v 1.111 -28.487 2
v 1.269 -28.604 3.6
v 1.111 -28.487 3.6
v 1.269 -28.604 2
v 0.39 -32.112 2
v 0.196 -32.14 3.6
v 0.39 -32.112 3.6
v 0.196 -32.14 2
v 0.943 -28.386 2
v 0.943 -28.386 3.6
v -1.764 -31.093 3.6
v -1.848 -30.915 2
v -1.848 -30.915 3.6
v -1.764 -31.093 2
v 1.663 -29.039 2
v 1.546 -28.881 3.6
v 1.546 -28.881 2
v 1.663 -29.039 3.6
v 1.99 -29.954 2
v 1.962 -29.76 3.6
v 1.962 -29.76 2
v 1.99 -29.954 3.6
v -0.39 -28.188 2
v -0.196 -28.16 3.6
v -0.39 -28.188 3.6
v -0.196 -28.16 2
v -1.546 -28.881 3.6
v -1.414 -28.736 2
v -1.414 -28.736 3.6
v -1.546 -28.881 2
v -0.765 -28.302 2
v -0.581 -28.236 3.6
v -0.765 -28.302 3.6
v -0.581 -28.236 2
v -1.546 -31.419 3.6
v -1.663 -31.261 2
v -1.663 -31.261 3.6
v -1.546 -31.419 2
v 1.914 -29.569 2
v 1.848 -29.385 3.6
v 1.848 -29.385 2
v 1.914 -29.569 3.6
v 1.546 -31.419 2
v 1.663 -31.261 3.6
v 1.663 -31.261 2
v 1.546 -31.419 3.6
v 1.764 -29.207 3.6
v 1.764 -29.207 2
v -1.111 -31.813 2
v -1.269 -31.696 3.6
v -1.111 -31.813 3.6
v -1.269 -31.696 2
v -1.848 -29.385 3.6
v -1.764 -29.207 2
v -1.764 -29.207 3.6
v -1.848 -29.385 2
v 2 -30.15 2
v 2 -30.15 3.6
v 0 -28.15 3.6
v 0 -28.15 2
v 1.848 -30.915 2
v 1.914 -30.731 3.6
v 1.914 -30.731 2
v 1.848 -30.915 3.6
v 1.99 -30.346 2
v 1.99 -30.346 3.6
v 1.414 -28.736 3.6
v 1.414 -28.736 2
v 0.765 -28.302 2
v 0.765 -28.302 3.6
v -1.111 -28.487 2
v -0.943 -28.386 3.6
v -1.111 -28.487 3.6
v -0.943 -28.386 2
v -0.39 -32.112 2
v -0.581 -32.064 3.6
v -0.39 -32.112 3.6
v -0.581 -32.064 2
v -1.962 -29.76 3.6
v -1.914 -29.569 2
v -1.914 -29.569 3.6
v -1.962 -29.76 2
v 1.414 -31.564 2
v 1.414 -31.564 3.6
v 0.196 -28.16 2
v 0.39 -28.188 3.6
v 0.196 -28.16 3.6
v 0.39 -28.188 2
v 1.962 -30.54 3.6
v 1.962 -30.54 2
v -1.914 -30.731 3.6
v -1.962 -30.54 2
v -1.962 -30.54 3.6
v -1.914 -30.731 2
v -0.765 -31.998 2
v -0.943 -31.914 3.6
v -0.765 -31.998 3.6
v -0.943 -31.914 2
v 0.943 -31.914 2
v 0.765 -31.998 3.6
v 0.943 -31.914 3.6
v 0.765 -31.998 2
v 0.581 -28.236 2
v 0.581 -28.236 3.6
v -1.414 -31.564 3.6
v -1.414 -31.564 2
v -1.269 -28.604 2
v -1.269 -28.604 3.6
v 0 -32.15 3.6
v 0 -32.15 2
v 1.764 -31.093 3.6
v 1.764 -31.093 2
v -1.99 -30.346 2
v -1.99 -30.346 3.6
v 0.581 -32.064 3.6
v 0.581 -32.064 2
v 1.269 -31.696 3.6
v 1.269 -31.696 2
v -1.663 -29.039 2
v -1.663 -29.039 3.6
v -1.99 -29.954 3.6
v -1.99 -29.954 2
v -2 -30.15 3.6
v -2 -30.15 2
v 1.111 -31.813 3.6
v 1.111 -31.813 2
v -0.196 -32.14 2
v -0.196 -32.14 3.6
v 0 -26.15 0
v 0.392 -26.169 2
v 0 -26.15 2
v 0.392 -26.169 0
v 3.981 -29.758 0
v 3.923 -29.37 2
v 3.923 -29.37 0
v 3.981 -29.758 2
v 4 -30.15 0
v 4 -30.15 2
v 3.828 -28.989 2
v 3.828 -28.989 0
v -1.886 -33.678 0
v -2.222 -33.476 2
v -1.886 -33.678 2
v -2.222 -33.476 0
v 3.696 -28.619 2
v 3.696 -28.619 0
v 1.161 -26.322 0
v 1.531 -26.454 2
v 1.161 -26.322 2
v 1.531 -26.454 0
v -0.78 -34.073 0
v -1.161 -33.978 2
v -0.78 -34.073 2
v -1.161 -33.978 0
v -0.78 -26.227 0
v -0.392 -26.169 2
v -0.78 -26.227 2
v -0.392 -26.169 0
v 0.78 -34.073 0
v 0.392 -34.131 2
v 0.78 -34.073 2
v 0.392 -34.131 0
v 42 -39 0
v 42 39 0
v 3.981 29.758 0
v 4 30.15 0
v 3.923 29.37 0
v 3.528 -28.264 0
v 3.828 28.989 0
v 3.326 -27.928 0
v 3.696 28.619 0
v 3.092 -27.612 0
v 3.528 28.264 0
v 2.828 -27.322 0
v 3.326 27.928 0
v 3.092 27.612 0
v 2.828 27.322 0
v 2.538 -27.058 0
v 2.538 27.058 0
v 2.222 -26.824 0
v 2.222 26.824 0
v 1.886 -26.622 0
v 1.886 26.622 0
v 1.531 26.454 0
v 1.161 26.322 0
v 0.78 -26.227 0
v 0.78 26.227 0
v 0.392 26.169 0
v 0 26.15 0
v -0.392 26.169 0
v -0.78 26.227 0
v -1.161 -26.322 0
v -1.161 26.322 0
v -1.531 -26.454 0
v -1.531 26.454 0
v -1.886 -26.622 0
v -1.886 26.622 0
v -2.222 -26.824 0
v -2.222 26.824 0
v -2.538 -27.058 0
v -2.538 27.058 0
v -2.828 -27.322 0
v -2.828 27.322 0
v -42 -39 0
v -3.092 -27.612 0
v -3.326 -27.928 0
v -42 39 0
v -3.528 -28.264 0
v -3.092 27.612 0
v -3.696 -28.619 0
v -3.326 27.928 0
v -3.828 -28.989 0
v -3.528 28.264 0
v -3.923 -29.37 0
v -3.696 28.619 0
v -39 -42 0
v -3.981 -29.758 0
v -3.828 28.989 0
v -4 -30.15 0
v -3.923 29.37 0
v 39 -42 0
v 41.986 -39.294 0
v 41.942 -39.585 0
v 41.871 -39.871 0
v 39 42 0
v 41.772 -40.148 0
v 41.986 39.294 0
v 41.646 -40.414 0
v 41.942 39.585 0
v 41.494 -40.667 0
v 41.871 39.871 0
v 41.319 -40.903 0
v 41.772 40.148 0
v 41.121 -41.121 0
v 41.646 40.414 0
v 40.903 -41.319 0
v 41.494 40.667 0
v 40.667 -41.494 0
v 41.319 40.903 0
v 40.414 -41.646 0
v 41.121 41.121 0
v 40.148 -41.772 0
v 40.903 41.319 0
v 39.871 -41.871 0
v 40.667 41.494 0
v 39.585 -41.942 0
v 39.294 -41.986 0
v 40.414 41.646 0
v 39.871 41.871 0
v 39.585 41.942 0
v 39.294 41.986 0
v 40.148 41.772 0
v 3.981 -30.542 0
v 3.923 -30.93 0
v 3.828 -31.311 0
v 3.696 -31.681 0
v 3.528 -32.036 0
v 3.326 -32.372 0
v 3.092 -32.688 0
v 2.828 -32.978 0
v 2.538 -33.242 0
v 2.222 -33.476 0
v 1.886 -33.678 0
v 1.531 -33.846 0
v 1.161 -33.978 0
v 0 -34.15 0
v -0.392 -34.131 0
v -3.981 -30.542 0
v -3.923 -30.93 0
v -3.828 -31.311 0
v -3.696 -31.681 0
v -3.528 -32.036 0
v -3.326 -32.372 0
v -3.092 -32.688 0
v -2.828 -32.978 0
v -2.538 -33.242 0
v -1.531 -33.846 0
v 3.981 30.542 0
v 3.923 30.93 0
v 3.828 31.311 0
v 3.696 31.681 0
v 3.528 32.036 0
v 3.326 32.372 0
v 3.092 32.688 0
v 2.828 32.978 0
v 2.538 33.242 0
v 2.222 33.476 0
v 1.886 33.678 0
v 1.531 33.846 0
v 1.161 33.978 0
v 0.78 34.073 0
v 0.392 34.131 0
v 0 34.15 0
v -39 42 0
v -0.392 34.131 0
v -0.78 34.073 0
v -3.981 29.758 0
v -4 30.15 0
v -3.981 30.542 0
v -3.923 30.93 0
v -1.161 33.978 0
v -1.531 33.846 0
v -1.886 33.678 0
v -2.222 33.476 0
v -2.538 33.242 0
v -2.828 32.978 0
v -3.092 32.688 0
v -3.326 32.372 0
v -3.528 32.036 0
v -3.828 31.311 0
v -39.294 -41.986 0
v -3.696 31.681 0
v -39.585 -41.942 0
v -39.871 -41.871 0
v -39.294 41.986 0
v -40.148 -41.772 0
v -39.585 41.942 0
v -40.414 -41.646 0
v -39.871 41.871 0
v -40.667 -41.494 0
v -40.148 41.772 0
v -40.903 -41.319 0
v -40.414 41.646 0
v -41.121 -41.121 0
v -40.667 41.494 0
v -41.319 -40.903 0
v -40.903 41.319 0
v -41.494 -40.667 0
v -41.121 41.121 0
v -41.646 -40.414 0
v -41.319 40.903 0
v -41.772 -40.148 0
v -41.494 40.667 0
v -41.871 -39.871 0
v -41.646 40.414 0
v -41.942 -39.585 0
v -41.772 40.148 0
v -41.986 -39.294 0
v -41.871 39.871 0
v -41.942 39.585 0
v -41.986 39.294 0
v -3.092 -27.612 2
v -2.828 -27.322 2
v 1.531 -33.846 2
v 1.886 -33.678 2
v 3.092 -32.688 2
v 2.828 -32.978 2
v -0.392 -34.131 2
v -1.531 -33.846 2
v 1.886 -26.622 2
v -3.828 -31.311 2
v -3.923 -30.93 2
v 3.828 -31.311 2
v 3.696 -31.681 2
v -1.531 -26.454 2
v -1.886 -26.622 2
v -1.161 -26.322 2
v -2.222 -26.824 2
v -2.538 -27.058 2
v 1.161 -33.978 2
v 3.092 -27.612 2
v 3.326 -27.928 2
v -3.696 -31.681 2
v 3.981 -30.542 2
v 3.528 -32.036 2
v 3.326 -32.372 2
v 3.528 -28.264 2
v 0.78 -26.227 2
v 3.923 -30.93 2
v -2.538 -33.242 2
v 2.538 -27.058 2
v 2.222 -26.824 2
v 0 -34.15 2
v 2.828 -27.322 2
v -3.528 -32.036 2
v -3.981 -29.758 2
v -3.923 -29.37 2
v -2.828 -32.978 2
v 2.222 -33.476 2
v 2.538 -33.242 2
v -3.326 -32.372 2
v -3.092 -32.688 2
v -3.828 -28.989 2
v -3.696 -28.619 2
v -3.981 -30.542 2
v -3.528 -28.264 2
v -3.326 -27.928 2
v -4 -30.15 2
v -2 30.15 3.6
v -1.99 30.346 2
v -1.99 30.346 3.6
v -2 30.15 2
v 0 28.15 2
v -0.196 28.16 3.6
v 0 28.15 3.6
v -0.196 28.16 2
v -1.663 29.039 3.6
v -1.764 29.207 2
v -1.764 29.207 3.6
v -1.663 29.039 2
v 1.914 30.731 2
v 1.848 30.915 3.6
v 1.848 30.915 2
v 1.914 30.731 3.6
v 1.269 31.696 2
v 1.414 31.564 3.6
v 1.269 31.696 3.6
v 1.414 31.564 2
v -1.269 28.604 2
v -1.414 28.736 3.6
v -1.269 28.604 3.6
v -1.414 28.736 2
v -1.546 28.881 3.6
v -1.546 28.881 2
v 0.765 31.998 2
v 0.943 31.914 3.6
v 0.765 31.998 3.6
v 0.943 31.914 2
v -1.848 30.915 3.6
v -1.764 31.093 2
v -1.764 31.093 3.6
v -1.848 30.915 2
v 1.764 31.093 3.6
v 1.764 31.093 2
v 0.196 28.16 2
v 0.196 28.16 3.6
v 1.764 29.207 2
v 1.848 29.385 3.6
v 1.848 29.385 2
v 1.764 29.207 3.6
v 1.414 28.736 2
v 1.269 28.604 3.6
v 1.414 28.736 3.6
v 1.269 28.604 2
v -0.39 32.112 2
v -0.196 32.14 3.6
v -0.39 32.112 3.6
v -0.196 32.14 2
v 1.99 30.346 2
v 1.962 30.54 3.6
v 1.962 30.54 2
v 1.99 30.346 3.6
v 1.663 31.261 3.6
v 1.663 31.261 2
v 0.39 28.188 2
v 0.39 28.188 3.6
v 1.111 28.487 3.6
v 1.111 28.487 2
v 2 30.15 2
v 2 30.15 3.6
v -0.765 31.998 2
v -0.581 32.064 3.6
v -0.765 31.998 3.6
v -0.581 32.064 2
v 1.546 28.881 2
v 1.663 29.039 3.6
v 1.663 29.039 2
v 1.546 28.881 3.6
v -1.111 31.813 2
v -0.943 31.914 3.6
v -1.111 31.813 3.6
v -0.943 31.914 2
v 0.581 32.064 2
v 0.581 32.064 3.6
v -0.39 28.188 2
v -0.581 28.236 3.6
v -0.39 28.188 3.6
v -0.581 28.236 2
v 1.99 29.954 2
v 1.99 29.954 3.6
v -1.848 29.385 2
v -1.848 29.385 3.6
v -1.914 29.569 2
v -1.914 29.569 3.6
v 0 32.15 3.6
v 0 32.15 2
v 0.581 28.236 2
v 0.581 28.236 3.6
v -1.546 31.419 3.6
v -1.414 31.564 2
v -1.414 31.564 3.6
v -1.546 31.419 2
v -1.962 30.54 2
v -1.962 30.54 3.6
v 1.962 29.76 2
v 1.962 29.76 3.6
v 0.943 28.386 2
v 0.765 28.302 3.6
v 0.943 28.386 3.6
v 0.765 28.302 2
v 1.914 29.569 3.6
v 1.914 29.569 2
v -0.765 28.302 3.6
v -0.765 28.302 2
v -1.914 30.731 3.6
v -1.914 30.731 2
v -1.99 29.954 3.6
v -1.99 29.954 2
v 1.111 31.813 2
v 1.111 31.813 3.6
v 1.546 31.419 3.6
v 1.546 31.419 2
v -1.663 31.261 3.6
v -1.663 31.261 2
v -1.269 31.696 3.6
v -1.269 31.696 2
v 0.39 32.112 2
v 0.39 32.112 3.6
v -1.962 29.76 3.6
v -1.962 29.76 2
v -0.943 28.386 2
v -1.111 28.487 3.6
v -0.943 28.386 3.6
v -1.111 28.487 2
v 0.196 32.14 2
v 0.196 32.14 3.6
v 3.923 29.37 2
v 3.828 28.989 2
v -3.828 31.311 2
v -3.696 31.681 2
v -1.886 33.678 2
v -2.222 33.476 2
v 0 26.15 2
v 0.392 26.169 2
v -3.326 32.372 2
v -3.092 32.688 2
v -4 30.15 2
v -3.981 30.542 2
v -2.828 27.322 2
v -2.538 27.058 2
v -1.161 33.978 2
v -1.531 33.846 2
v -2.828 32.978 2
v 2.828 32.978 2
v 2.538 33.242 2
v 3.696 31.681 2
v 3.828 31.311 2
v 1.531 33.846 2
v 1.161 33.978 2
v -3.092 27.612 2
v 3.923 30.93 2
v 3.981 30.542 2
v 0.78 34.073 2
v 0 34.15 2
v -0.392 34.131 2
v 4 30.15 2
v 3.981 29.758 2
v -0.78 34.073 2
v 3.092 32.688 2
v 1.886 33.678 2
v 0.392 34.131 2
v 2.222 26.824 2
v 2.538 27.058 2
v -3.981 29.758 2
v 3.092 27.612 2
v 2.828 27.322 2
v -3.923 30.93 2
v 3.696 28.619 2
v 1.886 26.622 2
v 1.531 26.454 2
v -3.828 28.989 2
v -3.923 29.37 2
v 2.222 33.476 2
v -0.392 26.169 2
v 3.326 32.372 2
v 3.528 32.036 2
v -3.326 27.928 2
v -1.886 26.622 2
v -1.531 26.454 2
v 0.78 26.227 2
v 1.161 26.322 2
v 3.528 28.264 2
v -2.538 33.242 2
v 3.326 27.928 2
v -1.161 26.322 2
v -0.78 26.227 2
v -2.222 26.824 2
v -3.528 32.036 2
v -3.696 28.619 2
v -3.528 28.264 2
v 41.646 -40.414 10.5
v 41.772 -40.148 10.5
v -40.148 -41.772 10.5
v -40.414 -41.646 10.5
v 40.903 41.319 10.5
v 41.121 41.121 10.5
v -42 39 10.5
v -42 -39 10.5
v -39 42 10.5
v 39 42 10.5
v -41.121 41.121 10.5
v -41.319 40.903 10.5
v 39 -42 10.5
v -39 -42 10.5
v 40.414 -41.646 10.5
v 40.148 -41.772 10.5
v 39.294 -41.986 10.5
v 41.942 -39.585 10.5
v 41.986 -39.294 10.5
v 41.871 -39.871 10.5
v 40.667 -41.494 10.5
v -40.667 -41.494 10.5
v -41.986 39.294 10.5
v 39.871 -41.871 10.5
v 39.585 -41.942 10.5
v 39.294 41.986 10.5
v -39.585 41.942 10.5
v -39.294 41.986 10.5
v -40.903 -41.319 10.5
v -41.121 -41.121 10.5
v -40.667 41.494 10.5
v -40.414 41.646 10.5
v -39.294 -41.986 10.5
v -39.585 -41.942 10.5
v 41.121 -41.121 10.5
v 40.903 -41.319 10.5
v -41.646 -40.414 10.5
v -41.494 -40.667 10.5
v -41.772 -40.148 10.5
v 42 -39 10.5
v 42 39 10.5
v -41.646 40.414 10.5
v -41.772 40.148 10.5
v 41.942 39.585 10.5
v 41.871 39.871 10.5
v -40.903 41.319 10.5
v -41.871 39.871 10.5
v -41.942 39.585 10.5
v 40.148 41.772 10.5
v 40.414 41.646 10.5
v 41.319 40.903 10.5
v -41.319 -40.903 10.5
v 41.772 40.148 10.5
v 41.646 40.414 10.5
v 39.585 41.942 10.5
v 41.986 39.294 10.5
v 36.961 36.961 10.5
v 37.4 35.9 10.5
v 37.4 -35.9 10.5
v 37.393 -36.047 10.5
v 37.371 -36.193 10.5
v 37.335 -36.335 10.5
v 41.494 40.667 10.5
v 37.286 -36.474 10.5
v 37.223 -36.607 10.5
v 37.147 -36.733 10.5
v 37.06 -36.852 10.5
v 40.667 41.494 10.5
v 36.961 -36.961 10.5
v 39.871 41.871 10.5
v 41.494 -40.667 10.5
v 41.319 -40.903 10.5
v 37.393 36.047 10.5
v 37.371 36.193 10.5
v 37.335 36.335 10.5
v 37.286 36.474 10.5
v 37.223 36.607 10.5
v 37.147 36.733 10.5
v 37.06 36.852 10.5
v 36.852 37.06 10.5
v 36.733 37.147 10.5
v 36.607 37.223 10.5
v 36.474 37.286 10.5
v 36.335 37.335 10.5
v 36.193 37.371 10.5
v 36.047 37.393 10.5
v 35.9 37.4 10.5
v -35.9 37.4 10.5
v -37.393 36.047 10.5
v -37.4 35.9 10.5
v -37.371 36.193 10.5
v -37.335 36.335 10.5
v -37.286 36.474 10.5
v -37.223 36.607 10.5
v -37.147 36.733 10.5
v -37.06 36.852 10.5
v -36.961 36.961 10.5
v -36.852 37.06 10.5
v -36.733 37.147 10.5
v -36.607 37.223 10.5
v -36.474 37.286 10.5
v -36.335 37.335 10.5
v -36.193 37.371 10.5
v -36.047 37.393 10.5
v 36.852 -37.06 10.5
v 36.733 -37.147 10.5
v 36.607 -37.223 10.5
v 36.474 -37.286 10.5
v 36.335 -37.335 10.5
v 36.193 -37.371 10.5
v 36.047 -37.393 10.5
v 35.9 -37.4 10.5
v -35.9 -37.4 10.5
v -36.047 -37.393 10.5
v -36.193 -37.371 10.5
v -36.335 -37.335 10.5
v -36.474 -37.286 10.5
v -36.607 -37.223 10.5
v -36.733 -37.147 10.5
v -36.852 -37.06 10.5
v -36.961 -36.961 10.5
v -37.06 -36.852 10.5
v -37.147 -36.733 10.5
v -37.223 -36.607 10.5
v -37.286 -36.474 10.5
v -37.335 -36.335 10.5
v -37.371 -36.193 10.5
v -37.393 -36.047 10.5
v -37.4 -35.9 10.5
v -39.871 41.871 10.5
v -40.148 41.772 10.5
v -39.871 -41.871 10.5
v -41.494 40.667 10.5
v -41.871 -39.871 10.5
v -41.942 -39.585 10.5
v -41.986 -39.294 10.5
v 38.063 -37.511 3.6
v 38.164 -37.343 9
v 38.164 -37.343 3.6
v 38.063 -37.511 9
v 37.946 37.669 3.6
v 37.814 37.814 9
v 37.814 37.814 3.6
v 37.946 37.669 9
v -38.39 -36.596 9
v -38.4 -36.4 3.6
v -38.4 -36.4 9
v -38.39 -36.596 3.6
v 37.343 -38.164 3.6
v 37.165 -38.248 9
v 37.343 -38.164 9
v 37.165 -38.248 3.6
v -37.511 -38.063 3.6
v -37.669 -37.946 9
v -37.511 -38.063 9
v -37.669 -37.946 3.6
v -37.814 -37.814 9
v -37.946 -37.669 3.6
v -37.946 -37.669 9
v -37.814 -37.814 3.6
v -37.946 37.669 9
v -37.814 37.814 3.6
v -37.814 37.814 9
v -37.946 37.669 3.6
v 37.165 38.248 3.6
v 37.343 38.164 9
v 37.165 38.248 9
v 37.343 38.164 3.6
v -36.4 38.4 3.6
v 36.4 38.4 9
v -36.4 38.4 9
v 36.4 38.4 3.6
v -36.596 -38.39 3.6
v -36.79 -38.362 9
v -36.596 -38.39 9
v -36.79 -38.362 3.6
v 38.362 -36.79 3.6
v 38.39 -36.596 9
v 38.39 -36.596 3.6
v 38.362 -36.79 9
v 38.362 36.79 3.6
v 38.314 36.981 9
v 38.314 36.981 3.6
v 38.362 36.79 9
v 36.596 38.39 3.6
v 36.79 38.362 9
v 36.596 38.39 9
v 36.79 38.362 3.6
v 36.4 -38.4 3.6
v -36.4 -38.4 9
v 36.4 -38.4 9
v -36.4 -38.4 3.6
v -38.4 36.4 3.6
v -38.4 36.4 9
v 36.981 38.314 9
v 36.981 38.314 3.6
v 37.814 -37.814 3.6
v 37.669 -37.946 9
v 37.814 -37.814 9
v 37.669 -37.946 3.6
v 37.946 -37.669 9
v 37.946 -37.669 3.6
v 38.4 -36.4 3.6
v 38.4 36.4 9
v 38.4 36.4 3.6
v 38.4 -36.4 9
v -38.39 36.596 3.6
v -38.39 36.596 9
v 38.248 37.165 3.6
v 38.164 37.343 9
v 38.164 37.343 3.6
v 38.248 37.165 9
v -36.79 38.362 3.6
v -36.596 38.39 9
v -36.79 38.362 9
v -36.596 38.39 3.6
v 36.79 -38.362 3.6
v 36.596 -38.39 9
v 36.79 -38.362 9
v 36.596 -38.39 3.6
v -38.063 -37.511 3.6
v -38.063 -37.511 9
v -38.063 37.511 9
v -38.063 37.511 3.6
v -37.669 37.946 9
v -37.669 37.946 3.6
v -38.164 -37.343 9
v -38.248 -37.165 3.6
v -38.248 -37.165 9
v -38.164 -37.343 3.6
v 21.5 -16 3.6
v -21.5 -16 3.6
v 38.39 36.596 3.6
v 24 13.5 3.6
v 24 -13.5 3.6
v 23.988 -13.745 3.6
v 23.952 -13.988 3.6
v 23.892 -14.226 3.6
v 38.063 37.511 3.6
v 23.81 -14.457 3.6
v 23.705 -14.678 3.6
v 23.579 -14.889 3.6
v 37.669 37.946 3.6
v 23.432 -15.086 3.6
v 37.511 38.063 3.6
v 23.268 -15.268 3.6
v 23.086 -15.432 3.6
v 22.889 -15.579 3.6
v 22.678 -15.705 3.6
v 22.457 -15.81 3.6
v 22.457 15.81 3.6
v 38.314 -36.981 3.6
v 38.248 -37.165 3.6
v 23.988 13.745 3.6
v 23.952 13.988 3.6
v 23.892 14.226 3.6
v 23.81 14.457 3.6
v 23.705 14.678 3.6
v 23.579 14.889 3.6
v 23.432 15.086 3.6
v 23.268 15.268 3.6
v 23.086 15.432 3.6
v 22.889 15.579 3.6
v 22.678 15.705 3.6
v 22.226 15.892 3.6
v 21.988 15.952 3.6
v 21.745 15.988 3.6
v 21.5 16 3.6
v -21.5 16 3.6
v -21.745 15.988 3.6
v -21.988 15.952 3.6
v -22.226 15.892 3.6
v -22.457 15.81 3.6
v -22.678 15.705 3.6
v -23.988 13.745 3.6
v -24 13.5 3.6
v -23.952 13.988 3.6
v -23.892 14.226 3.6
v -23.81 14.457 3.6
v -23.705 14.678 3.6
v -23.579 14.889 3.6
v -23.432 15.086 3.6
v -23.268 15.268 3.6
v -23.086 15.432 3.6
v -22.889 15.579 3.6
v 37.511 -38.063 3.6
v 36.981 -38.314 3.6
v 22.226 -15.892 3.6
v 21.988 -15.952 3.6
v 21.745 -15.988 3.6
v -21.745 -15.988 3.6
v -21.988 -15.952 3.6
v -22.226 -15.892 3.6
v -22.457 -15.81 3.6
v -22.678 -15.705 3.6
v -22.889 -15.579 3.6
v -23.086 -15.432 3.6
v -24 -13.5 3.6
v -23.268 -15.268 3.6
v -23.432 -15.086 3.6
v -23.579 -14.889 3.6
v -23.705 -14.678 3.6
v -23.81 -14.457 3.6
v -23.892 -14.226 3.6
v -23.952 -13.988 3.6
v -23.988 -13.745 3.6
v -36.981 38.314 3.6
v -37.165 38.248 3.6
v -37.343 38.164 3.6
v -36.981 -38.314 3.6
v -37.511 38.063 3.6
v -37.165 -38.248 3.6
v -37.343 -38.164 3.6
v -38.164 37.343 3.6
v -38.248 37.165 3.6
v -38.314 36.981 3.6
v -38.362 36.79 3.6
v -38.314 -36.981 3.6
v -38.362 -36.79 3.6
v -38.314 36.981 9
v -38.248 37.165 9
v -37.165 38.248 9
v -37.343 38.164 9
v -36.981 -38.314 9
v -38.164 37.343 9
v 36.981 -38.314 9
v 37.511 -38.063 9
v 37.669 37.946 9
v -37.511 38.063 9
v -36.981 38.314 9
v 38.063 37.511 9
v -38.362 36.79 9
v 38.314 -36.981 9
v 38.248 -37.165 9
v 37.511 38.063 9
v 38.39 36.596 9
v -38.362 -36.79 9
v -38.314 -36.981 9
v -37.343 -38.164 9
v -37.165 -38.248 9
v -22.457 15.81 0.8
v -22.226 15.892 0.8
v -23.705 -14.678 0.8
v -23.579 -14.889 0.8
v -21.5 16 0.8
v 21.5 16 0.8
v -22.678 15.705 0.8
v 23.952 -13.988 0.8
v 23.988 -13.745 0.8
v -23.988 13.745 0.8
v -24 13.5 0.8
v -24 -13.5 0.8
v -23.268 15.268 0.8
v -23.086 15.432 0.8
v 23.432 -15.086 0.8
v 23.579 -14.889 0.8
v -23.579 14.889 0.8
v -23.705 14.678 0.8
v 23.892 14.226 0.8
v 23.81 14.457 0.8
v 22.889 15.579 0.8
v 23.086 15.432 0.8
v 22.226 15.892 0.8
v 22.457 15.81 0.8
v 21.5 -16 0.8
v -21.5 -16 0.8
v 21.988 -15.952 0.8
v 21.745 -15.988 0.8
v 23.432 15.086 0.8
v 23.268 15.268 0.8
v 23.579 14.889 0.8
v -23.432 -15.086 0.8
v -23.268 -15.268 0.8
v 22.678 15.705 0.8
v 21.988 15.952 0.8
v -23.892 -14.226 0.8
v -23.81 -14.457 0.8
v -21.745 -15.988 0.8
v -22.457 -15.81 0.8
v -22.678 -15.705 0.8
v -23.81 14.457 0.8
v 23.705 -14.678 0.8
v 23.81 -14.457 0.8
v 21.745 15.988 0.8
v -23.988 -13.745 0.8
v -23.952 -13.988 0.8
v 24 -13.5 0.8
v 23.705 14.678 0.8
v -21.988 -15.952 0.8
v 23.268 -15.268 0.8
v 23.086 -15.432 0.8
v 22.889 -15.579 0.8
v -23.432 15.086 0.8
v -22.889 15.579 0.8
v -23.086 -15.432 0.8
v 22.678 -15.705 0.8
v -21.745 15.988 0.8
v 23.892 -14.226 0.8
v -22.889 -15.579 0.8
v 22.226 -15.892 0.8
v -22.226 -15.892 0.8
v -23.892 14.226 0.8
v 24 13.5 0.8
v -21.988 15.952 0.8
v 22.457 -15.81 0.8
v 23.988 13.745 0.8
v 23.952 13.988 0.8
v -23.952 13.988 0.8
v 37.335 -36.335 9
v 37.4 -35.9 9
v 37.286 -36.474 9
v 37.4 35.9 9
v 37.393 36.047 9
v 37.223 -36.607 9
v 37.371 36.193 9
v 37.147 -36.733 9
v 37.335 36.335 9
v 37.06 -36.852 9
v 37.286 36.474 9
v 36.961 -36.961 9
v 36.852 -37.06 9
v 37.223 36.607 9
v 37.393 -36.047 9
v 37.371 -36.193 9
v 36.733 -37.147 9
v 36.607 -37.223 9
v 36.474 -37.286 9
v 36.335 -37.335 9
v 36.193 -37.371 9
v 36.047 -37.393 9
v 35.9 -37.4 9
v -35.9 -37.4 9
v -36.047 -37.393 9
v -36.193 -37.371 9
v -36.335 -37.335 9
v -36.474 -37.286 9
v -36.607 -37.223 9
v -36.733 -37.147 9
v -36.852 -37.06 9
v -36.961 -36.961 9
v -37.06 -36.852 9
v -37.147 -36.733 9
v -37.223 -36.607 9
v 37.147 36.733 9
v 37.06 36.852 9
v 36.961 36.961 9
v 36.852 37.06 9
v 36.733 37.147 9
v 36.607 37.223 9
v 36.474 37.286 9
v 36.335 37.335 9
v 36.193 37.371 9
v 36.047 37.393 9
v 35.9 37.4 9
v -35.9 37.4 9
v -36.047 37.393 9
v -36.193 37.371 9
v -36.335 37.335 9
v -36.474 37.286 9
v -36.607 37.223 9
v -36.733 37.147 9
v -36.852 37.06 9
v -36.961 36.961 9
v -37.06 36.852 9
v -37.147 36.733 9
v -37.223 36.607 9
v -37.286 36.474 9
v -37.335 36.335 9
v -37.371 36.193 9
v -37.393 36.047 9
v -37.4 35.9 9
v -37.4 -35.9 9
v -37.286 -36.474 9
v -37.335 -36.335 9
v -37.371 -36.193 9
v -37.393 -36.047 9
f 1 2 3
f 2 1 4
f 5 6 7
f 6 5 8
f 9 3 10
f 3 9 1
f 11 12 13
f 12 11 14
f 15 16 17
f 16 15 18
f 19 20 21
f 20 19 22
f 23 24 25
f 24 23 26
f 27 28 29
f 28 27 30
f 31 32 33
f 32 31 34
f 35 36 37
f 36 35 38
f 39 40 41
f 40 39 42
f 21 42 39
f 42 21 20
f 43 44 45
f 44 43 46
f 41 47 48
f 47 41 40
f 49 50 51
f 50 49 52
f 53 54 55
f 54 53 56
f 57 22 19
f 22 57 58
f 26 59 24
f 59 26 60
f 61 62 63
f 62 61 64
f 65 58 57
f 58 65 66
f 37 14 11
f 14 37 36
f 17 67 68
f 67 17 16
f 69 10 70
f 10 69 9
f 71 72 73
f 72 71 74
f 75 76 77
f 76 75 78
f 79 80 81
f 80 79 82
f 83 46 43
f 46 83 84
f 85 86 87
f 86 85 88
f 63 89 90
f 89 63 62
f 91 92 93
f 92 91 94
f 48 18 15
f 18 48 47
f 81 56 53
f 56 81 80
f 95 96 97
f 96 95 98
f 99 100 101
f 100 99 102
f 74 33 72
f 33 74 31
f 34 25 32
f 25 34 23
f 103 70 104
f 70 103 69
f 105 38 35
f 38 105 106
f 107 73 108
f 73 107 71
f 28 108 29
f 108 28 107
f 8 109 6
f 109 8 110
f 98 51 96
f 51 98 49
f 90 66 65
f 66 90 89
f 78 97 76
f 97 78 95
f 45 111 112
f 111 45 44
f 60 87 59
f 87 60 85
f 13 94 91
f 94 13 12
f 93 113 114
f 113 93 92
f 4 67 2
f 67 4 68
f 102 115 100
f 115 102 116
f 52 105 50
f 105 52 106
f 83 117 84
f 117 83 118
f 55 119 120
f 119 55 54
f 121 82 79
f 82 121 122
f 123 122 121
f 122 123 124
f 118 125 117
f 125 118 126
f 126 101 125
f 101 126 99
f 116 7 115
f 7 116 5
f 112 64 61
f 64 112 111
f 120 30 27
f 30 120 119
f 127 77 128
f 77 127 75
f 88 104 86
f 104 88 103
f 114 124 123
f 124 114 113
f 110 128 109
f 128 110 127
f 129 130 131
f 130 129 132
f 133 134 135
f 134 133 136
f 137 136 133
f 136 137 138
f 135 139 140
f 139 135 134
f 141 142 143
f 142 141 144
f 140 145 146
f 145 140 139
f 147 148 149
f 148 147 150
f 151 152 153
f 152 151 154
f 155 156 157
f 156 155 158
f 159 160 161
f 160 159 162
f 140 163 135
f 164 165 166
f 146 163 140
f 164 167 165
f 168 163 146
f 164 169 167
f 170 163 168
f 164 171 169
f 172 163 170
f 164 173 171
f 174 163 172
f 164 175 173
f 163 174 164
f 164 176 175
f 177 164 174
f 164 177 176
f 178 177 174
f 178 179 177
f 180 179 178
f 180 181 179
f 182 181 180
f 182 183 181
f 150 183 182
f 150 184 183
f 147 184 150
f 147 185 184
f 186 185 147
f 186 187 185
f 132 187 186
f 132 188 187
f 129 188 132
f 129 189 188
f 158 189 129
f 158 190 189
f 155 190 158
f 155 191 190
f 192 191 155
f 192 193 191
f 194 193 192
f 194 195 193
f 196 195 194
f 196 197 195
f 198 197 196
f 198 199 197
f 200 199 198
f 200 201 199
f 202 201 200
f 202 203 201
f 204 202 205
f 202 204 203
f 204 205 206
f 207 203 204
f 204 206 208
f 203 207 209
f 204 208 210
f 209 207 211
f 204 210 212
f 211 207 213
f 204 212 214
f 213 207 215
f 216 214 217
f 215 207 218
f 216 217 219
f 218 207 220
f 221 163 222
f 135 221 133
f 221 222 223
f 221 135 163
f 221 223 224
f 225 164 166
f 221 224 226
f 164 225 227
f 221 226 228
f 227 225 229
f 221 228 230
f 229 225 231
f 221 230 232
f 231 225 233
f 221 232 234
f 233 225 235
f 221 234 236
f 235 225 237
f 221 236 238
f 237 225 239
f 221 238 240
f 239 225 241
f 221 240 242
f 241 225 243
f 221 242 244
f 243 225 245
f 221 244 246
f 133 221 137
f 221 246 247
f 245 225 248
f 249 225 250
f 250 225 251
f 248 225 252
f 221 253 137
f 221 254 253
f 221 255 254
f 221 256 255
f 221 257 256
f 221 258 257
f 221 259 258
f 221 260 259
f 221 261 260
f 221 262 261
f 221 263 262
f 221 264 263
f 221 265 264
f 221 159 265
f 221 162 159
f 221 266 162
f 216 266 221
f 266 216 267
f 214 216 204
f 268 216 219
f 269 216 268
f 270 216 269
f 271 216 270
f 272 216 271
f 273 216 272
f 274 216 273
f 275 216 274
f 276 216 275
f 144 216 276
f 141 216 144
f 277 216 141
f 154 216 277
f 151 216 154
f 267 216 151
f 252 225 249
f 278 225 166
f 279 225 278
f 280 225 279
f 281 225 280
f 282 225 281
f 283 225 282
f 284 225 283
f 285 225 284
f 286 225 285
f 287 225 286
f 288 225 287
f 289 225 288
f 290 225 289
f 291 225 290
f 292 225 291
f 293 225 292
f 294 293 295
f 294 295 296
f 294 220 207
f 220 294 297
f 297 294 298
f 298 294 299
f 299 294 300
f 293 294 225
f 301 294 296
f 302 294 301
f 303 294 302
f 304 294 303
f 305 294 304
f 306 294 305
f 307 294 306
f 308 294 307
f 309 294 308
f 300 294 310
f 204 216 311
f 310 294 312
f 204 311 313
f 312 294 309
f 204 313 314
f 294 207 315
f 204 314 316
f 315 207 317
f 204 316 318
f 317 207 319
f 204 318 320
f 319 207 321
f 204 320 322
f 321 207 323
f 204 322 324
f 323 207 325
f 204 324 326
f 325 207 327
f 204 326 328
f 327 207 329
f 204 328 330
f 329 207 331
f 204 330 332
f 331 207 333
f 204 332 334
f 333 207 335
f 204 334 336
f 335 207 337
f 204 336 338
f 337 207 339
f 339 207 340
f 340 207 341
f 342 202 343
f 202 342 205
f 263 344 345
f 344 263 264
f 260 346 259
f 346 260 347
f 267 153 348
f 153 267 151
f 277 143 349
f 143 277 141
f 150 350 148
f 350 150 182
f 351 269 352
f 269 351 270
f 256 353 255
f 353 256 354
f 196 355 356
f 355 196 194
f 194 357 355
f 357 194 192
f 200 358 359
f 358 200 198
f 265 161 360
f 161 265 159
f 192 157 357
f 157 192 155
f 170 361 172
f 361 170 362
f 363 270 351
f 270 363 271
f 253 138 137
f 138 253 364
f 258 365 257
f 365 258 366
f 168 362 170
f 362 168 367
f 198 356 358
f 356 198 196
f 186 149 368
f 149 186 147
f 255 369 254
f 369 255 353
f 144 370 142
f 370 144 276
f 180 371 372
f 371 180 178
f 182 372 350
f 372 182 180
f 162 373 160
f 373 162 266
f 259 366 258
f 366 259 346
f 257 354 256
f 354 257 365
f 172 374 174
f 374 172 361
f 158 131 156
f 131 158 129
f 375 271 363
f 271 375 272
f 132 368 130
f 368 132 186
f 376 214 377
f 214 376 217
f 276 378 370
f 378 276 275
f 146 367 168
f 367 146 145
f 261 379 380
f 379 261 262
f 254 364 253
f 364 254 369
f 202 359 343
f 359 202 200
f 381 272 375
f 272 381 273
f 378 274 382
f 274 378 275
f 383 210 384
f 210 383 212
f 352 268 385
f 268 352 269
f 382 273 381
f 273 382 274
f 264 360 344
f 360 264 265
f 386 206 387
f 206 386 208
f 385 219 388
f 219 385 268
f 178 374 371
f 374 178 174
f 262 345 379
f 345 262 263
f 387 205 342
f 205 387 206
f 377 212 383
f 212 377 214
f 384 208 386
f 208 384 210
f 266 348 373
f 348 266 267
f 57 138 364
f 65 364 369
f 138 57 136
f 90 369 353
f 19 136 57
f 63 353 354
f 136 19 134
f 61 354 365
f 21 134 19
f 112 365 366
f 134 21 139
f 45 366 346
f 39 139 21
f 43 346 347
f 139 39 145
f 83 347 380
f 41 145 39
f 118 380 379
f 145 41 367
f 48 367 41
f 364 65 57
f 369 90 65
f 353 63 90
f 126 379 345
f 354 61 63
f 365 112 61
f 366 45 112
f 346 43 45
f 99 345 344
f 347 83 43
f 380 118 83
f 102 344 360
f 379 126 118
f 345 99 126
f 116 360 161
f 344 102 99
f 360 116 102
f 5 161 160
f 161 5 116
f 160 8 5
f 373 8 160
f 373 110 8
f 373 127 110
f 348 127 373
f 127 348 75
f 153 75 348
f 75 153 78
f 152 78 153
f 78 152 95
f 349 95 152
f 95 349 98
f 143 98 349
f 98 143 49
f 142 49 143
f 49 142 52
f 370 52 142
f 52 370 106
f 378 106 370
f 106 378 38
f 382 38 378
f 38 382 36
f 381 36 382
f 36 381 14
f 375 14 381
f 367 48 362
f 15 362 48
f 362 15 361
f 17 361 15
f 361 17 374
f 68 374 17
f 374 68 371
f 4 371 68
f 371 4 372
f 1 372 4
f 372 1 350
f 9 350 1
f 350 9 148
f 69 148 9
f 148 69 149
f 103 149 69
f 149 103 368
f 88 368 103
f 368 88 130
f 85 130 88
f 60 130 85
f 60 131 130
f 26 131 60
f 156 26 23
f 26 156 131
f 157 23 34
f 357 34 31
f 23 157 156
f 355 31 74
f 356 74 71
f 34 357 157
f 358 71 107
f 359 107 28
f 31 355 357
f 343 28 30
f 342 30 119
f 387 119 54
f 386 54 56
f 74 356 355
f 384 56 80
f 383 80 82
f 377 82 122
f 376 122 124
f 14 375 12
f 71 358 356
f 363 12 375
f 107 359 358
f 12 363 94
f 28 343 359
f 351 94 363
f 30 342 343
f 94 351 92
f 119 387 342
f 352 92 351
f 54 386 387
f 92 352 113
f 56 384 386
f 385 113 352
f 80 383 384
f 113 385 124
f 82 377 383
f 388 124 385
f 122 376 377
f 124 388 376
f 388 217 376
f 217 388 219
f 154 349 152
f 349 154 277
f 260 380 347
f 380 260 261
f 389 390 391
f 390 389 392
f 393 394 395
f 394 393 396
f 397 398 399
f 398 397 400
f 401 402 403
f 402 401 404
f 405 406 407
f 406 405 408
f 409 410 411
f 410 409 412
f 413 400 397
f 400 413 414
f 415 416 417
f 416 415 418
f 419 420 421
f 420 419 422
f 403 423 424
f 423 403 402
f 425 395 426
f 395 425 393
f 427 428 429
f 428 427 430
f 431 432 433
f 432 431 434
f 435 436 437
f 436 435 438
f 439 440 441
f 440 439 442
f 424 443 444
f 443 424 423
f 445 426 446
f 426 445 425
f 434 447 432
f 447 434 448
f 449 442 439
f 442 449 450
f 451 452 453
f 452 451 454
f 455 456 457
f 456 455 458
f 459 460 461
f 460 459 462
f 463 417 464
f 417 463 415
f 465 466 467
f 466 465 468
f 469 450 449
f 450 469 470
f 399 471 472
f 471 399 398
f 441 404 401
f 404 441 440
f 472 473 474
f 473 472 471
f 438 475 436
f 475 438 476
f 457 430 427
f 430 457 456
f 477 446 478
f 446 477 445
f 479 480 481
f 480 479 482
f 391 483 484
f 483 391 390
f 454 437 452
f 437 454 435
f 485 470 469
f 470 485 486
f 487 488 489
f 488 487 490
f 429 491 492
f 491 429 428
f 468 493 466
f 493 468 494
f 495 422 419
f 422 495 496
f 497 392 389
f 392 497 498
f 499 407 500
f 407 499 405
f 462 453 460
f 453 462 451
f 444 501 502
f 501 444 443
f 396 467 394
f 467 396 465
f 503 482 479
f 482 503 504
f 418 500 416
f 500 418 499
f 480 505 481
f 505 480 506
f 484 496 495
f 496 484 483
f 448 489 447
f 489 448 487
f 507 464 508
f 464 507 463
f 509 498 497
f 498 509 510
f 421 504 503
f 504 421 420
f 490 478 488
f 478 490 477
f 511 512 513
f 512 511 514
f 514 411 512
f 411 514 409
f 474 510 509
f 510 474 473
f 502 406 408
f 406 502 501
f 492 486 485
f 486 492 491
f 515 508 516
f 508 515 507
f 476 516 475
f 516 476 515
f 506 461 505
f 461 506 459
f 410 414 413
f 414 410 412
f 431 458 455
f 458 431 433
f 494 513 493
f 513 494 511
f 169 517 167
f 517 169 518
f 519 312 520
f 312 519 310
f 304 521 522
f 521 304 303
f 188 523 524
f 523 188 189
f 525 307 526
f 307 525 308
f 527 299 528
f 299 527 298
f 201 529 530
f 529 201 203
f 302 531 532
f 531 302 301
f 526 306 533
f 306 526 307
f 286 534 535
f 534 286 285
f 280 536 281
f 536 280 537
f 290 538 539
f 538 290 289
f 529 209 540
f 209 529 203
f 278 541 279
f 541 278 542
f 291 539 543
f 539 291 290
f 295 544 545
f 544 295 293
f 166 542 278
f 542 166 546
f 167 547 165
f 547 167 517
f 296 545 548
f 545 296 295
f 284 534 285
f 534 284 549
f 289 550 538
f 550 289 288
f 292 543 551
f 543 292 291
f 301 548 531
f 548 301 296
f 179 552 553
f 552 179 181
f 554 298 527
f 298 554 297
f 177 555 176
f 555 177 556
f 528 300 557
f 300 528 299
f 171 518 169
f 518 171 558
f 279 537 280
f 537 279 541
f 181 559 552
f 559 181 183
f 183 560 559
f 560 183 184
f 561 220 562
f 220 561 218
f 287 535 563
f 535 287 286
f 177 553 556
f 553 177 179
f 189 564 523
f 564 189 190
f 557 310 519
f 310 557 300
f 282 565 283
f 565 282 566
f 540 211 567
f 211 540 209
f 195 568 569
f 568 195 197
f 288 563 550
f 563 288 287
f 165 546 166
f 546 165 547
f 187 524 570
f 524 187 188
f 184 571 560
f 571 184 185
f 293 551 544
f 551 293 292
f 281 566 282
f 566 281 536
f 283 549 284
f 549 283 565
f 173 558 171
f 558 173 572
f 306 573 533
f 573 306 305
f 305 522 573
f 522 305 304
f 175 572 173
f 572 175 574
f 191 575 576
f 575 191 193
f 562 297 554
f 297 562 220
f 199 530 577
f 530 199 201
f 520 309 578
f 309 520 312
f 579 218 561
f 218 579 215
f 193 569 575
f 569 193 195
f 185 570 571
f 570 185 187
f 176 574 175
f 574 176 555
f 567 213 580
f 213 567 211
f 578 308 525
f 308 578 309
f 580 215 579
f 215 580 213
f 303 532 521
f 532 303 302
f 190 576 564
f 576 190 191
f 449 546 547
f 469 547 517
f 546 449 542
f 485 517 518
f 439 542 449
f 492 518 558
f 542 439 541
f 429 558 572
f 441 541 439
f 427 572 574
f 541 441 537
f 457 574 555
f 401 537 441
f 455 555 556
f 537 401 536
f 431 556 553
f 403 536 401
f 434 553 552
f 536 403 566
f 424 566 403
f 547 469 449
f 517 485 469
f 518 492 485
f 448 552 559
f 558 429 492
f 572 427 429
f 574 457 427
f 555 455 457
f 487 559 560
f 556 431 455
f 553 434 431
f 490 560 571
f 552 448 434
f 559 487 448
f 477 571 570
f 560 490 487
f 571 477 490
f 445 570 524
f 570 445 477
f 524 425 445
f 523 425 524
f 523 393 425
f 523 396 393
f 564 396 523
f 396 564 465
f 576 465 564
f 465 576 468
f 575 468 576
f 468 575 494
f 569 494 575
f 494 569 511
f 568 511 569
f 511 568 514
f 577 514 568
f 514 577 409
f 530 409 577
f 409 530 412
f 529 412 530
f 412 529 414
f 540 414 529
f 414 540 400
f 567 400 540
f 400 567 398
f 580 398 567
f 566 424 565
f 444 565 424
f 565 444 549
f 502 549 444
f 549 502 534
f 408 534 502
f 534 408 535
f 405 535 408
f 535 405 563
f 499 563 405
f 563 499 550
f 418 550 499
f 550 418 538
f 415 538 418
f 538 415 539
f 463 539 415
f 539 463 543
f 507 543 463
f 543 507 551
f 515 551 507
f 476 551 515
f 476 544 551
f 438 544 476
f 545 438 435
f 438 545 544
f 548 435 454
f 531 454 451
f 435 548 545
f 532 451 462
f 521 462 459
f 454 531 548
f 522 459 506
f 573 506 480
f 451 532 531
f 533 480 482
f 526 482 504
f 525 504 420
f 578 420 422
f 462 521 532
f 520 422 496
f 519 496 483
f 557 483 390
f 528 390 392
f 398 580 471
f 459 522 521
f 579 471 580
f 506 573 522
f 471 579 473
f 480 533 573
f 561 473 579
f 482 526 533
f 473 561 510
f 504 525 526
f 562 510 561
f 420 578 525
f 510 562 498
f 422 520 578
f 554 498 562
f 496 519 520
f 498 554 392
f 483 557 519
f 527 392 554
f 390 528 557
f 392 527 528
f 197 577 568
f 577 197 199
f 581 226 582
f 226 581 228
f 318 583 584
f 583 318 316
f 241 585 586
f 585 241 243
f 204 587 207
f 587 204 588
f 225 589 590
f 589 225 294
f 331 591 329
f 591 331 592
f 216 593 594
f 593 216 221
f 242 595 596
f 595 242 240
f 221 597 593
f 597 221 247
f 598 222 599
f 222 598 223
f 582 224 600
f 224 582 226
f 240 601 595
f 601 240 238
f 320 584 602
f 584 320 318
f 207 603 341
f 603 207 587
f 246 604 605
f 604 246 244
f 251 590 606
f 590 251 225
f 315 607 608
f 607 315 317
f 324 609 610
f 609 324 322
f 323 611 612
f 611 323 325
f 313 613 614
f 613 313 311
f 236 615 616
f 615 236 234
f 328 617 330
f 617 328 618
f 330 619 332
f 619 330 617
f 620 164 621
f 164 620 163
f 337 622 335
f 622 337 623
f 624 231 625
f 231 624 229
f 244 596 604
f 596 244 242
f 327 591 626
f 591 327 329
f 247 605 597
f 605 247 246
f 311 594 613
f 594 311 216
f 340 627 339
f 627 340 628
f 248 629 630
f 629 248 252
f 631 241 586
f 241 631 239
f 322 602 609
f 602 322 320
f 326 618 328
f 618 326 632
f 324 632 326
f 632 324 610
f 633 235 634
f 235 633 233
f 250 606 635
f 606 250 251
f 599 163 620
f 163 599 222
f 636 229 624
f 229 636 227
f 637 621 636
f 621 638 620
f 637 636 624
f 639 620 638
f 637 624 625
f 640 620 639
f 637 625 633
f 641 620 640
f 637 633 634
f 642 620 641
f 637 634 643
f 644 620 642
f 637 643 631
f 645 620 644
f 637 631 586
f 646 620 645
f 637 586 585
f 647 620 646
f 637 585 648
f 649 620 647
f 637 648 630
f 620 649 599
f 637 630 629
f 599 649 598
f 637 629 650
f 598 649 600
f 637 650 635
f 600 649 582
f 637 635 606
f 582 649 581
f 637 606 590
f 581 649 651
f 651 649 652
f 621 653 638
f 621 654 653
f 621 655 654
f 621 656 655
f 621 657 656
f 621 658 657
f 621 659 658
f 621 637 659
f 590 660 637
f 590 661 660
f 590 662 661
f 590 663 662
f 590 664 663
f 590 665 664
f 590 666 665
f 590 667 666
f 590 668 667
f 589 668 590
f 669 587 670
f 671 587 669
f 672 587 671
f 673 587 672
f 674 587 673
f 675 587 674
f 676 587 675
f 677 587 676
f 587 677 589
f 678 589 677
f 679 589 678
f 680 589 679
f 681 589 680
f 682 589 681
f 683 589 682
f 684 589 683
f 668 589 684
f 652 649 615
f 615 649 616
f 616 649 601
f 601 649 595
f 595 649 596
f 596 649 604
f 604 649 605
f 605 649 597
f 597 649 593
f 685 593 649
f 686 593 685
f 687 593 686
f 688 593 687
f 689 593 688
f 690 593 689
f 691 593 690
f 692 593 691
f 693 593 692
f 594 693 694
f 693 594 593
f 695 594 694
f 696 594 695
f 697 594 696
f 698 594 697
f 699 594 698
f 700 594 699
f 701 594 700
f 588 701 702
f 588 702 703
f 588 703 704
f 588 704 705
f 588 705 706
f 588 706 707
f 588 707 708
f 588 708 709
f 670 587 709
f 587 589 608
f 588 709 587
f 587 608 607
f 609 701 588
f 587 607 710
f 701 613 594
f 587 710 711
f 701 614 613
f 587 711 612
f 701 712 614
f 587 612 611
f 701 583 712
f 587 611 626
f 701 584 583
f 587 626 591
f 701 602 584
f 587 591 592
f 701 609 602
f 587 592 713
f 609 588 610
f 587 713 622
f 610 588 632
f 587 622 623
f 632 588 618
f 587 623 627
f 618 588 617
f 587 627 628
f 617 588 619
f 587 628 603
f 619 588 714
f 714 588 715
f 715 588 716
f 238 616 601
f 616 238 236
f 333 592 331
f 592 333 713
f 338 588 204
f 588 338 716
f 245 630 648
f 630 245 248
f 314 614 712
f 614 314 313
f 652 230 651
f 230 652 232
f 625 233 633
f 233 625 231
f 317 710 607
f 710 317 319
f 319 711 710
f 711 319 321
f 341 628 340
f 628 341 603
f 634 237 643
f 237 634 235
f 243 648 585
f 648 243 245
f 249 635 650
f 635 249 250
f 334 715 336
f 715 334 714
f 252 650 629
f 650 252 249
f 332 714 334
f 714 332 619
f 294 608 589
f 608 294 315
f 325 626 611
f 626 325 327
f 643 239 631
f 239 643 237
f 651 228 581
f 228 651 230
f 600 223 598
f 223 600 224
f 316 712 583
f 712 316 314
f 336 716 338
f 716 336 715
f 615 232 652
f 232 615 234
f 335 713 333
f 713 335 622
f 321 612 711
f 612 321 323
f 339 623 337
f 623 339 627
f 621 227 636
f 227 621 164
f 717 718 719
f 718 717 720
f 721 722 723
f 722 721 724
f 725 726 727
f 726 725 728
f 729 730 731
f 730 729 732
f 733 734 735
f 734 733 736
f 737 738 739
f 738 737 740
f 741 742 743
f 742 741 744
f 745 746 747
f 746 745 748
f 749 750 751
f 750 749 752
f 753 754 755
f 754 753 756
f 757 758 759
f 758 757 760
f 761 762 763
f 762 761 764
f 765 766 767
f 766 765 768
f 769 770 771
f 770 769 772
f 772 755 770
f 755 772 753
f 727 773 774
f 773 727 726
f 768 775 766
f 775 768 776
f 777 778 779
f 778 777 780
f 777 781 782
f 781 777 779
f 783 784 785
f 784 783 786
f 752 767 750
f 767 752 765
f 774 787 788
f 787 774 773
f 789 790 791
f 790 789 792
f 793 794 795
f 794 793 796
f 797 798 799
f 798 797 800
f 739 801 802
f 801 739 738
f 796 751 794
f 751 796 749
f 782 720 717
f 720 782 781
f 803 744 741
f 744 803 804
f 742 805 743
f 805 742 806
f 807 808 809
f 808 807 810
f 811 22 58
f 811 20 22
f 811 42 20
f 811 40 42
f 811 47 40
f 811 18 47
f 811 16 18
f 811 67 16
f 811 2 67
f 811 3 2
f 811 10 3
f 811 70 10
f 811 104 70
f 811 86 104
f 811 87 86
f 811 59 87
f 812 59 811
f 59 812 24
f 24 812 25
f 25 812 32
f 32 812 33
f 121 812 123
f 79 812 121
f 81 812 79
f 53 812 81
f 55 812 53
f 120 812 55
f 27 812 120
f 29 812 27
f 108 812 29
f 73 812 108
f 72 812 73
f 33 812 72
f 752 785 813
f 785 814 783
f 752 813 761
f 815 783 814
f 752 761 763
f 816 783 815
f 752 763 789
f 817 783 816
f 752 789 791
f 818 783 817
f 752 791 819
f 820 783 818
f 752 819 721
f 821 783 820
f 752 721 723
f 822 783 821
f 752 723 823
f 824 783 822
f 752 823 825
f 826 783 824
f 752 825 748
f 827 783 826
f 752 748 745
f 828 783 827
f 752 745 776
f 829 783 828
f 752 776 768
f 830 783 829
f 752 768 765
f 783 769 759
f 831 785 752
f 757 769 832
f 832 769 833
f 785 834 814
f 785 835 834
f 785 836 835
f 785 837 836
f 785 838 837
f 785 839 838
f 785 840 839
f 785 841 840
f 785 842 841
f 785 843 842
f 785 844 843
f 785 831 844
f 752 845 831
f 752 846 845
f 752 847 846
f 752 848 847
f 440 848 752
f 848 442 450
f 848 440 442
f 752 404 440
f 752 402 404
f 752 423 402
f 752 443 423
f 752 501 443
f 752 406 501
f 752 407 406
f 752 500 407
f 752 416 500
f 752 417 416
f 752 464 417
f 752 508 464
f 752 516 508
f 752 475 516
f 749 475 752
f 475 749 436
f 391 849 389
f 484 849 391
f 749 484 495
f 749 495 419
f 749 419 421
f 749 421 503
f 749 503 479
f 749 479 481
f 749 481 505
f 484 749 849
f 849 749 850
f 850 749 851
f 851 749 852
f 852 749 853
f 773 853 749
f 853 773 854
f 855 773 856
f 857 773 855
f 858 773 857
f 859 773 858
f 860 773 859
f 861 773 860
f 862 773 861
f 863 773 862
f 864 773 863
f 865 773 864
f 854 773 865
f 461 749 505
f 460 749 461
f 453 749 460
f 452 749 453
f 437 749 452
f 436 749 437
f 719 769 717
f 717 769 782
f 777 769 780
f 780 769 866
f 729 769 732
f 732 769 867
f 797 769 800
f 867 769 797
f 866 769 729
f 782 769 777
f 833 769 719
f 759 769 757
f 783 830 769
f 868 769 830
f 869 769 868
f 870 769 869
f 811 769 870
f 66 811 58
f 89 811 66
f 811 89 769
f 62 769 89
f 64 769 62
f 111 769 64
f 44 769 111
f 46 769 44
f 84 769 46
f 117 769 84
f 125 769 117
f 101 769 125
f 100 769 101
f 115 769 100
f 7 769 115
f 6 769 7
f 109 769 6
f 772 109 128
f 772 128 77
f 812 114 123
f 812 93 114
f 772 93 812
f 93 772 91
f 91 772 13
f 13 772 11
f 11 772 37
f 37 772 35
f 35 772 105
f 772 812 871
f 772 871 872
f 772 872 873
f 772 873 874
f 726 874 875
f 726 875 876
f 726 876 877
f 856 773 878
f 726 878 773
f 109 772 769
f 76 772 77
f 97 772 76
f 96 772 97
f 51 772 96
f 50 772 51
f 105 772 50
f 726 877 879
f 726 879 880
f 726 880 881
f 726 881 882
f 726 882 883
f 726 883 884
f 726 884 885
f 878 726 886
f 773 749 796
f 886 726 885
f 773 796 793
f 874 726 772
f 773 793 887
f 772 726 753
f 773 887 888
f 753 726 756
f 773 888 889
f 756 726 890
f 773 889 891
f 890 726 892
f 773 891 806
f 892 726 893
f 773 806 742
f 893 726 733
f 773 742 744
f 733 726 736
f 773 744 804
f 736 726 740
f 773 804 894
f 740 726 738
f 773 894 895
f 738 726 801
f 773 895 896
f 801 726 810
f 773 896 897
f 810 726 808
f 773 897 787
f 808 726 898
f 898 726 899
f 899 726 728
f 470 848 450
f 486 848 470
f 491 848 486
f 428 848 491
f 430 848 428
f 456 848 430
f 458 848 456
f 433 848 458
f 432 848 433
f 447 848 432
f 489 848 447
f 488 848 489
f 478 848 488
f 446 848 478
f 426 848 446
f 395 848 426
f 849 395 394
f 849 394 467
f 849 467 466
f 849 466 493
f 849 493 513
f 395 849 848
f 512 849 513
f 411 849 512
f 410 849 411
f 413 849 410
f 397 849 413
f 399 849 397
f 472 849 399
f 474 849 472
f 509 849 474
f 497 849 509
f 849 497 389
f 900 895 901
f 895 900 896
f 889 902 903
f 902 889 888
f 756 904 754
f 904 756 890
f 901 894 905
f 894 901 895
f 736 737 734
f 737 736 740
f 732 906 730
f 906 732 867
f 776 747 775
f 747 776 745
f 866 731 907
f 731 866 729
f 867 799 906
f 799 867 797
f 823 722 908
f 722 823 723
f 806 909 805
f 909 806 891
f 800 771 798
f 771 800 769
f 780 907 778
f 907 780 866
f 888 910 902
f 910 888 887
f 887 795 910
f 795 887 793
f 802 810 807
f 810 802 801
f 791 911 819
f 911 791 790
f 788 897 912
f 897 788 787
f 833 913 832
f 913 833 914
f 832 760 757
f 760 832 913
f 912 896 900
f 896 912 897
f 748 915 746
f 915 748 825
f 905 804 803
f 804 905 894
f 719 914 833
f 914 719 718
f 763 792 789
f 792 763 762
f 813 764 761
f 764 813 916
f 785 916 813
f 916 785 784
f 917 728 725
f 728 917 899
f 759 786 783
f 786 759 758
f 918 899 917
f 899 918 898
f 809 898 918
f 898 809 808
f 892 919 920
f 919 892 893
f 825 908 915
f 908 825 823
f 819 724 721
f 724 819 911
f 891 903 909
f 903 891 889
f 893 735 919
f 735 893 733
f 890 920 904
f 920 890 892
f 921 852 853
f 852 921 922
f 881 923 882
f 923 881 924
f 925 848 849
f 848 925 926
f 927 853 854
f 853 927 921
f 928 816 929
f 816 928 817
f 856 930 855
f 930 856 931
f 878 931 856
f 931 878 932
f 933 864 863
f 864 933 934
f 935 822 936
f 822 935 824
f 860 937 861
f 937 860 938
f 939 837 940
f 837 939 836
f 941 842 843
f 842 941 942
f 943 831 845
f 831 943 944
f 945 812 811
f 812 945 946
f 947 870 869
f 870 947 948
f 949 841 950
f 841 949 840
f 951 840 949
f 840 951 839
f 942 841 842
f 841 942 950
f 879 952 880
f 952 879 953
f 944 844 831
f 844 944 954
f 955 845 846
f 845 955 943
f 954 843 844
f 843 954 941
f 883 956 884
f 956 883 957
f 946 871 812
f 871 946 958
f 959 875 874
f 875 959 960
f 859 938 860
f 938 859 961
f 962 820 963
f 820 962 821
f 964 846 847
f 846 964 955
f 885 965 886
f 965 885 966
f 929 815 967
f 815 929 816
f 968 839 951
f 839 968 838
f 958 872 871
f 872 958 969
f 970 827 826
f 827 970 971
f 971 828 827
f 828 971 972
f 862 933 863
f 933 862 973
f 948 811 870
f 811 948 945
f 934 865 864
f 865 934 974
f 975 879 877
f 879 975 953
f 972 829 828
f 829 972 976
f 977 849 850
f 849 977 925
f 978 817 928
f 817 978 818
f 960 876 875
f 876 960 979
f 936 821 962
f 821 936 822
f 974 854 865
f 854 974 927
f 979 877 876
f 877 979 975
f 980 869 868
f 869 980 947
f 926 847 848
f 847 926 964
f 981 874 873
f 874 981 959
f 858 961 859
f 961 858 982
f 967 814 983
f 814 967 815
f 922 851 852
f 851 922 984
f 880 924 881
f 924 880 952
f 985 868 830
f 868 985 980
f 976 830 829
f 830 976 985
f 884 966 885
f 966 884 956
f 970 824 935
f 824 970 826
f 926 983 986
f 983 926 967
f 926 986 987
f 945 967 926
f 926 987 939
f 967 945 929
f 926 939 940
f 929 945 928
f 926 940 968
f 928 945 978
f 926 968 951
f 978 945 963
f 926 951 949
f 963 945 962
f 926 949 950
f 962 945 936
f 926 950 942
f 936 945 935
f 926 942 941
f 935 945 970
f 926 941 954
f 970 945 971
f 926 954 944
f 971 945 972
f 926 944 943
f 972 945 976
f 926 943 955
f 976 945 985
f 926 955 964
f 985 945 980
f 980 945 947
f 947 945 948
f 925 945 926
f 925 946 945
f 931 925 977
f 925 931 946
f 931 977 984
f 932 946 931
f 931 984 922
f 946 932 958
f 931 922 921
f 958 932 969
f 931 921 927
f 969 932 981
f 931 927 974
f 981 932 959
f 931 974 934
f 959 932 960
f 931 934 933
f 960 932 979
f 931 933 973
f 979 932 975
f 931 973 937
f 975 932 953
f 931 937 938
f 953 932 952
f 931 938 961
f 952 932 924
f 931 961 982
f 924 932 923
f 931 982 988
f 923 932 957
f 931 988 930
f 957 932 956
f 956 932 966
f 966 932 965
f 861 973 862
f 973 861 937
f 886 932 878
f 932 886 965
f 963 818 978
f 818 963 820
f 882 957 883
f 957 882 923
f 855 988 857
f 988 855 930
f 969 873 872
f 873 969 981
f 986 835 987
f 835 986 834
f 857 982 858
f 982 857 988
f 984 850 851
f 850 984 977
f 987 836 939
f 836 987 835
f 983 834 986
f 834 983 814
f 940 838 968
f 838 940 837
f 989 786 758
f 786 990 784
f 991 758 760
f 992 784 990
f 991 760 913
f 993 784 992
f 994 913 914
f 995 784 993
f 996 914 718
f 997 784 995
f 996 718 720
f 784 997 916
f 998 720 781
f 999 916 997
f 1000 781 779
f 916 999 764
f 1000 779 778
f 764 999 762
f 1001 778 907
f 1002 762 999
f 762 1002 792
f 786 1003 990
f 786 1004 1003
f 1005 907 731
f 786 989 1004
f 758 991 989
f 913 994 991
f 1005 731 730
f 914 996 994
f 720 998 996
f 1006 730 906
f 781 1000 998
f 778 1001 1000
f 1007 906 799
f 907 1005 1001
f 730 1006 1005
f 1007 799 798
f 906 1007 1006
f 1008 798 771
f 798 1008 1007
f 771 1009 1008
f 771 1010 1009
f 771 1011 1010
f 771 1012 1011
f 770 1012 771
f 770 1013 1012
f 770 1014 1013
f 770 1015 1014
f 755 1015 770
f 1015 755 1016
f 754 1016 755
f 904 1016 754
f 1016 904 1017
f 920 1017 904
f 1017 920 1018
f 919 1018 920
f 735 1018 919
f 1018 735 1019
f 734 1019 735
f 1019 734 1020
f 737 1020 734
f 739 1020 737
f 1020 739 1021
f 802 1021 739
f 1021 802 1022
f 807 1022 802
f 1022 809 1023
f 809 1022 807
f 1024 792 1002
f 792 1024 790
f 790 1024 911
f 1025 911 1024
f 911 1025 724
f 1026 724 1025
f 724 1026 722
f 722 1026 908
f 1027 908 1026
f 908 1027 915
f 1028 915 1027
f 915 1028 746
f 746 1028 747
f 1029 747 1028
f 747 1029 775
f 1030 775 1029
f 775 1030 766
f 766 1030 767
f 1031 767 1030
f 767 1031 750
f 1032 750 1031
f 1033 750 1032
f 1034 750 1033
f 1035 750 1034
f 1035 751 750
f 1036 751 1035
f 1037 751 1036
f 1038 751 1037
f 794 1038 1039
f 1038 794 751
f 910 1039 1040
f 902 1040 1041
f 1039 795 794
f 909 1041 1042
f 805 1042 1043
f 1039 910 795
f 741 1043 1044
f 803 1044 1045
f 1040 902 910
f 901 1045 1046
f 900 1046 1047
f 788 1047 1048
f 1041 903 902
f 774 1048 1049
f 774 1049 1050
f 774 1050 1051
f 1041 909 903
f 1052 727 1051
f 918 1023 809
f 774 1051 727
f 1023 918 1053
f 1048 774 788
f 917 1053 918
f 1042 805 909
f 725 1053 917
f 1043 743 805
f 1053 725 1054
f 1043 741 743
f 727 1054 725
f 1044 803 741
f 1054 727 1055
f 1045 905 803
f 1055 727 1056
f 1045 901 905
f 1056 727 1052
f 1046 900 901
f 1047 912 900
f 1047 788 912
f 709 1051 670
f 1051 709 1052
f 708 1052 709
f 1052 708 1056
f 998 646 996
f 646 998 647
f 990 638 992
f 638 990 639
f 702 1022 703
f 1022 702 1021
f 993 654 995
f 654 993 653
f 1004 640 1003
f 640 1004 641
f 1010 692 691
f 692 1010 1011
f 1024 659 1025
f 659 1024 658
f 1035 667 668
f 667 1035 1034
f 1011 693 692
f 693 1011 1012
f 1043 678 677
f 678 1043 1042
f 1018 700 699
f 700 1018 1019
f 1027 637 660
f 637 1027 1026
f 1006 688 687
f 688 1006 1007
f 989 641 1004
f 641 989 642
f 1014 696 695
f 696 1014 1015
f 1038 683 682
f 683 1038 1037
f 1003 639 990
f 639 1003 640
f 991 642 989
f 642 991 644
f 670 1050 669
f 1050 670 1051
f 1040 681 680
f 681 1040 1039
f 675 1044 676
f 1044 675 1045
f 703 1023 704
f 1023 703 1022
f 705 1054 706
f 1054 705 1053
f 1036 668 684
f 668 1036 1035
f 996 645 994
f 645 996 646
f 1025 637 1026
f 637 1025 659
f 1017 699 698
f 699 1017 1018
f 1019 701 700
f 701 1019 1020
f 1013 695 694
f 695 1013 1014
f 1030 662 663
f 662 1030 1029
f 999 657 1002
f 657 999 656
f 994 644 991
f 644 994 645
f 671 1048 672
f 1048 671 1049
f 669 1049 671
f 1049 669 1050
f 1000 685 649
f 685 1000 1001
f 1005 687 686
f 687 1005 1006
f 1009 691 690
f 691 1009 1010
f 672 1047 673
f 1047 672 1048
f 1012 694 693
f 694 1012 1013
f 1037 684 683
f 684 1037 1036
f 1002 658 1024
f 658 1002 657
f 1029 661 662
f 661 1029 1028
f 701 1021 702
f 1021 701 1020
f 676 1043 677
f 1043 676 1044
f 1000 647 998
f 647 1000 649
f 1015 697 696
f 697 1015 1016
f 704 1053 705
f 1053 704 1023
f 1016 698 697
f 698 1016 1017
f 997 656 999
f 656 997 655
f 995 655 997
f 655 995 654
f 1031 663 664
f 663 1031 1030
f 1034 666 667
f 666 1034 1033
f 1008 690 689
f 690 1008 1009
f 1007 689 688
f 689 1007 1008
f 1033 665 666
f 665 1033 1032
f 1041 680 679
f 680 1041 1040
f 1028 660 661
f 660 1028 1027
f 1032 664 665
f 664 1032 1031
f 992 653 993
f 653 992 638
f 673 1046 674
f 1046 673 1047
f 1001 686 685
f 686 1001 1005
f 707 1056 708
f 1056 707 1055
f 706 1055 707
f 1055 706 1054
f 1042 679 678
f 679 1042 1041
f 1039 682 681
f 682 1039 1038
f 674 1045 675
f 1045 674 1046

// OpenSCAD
$fn = 64;

face_w = 84;
face_h = 84;
height = 10.5;
wall = 3.6;

screw_pitch = 60.3;
screw_hole_d = 4.0;
screw_countersink_d = 8.0;
screw_countersink_h = 2.0;

inner_clear_w = face_w - 2*wall;
inner_clear_h = face_h - 2*wall;

round_r = 3.0;

module rounded_box(w,h,t,r){
    hull(){
        for (sx=[-1,1], sy=[-1,1])
            translate([sx*(w/2 - r), sy*(h/2 - r), 0])
                cylinder(r=r, h=t);
    }
}

module wall_socket(){
    difference(){
        // Outer body (faceplate + shallow box)
        rounded_box(face_w, face_h, height, round_r);

        // Inner cavity (open from back, leaving a front thickness)
        translate([0,0,wall])
            rounded_box(inner_clear_w, inner_clear_h, height, max(0.1, round_r-1.0));

        // Screw through holes + countersinks on front
        for (y=[-screw_pitch/2, screw_pitch/2]){
            // Through hole
            translate([0,y,-0.2])
                cylinder(d=screw_hole_d, h=height+0.4);

            // Countersink (front)
            translate([0,y,0])
                cylinder(d=screw_countersink_d, h=screw_countersink_h);
        }

        // Central aperture (representing socket opening)
        translate([0,0,0.8])
            rounded_box(48, 32, height, 2.5);
    }

    // Small rear lip (to suggest flush-mount rim)
    translate([0,0,height - 1.5])
        difference(){
            rounded_box(face_w - 2.0, face_h - 2.0, 1.5, round_r-0.5);
            translate([0,0,-0.1])
                rounded_box(face_w - 2.0 - 2*wall, face_h - 2.0 - 2*wall, 1.7, max(0.1, round_r-1.5));
        }
}

wall_socket();
